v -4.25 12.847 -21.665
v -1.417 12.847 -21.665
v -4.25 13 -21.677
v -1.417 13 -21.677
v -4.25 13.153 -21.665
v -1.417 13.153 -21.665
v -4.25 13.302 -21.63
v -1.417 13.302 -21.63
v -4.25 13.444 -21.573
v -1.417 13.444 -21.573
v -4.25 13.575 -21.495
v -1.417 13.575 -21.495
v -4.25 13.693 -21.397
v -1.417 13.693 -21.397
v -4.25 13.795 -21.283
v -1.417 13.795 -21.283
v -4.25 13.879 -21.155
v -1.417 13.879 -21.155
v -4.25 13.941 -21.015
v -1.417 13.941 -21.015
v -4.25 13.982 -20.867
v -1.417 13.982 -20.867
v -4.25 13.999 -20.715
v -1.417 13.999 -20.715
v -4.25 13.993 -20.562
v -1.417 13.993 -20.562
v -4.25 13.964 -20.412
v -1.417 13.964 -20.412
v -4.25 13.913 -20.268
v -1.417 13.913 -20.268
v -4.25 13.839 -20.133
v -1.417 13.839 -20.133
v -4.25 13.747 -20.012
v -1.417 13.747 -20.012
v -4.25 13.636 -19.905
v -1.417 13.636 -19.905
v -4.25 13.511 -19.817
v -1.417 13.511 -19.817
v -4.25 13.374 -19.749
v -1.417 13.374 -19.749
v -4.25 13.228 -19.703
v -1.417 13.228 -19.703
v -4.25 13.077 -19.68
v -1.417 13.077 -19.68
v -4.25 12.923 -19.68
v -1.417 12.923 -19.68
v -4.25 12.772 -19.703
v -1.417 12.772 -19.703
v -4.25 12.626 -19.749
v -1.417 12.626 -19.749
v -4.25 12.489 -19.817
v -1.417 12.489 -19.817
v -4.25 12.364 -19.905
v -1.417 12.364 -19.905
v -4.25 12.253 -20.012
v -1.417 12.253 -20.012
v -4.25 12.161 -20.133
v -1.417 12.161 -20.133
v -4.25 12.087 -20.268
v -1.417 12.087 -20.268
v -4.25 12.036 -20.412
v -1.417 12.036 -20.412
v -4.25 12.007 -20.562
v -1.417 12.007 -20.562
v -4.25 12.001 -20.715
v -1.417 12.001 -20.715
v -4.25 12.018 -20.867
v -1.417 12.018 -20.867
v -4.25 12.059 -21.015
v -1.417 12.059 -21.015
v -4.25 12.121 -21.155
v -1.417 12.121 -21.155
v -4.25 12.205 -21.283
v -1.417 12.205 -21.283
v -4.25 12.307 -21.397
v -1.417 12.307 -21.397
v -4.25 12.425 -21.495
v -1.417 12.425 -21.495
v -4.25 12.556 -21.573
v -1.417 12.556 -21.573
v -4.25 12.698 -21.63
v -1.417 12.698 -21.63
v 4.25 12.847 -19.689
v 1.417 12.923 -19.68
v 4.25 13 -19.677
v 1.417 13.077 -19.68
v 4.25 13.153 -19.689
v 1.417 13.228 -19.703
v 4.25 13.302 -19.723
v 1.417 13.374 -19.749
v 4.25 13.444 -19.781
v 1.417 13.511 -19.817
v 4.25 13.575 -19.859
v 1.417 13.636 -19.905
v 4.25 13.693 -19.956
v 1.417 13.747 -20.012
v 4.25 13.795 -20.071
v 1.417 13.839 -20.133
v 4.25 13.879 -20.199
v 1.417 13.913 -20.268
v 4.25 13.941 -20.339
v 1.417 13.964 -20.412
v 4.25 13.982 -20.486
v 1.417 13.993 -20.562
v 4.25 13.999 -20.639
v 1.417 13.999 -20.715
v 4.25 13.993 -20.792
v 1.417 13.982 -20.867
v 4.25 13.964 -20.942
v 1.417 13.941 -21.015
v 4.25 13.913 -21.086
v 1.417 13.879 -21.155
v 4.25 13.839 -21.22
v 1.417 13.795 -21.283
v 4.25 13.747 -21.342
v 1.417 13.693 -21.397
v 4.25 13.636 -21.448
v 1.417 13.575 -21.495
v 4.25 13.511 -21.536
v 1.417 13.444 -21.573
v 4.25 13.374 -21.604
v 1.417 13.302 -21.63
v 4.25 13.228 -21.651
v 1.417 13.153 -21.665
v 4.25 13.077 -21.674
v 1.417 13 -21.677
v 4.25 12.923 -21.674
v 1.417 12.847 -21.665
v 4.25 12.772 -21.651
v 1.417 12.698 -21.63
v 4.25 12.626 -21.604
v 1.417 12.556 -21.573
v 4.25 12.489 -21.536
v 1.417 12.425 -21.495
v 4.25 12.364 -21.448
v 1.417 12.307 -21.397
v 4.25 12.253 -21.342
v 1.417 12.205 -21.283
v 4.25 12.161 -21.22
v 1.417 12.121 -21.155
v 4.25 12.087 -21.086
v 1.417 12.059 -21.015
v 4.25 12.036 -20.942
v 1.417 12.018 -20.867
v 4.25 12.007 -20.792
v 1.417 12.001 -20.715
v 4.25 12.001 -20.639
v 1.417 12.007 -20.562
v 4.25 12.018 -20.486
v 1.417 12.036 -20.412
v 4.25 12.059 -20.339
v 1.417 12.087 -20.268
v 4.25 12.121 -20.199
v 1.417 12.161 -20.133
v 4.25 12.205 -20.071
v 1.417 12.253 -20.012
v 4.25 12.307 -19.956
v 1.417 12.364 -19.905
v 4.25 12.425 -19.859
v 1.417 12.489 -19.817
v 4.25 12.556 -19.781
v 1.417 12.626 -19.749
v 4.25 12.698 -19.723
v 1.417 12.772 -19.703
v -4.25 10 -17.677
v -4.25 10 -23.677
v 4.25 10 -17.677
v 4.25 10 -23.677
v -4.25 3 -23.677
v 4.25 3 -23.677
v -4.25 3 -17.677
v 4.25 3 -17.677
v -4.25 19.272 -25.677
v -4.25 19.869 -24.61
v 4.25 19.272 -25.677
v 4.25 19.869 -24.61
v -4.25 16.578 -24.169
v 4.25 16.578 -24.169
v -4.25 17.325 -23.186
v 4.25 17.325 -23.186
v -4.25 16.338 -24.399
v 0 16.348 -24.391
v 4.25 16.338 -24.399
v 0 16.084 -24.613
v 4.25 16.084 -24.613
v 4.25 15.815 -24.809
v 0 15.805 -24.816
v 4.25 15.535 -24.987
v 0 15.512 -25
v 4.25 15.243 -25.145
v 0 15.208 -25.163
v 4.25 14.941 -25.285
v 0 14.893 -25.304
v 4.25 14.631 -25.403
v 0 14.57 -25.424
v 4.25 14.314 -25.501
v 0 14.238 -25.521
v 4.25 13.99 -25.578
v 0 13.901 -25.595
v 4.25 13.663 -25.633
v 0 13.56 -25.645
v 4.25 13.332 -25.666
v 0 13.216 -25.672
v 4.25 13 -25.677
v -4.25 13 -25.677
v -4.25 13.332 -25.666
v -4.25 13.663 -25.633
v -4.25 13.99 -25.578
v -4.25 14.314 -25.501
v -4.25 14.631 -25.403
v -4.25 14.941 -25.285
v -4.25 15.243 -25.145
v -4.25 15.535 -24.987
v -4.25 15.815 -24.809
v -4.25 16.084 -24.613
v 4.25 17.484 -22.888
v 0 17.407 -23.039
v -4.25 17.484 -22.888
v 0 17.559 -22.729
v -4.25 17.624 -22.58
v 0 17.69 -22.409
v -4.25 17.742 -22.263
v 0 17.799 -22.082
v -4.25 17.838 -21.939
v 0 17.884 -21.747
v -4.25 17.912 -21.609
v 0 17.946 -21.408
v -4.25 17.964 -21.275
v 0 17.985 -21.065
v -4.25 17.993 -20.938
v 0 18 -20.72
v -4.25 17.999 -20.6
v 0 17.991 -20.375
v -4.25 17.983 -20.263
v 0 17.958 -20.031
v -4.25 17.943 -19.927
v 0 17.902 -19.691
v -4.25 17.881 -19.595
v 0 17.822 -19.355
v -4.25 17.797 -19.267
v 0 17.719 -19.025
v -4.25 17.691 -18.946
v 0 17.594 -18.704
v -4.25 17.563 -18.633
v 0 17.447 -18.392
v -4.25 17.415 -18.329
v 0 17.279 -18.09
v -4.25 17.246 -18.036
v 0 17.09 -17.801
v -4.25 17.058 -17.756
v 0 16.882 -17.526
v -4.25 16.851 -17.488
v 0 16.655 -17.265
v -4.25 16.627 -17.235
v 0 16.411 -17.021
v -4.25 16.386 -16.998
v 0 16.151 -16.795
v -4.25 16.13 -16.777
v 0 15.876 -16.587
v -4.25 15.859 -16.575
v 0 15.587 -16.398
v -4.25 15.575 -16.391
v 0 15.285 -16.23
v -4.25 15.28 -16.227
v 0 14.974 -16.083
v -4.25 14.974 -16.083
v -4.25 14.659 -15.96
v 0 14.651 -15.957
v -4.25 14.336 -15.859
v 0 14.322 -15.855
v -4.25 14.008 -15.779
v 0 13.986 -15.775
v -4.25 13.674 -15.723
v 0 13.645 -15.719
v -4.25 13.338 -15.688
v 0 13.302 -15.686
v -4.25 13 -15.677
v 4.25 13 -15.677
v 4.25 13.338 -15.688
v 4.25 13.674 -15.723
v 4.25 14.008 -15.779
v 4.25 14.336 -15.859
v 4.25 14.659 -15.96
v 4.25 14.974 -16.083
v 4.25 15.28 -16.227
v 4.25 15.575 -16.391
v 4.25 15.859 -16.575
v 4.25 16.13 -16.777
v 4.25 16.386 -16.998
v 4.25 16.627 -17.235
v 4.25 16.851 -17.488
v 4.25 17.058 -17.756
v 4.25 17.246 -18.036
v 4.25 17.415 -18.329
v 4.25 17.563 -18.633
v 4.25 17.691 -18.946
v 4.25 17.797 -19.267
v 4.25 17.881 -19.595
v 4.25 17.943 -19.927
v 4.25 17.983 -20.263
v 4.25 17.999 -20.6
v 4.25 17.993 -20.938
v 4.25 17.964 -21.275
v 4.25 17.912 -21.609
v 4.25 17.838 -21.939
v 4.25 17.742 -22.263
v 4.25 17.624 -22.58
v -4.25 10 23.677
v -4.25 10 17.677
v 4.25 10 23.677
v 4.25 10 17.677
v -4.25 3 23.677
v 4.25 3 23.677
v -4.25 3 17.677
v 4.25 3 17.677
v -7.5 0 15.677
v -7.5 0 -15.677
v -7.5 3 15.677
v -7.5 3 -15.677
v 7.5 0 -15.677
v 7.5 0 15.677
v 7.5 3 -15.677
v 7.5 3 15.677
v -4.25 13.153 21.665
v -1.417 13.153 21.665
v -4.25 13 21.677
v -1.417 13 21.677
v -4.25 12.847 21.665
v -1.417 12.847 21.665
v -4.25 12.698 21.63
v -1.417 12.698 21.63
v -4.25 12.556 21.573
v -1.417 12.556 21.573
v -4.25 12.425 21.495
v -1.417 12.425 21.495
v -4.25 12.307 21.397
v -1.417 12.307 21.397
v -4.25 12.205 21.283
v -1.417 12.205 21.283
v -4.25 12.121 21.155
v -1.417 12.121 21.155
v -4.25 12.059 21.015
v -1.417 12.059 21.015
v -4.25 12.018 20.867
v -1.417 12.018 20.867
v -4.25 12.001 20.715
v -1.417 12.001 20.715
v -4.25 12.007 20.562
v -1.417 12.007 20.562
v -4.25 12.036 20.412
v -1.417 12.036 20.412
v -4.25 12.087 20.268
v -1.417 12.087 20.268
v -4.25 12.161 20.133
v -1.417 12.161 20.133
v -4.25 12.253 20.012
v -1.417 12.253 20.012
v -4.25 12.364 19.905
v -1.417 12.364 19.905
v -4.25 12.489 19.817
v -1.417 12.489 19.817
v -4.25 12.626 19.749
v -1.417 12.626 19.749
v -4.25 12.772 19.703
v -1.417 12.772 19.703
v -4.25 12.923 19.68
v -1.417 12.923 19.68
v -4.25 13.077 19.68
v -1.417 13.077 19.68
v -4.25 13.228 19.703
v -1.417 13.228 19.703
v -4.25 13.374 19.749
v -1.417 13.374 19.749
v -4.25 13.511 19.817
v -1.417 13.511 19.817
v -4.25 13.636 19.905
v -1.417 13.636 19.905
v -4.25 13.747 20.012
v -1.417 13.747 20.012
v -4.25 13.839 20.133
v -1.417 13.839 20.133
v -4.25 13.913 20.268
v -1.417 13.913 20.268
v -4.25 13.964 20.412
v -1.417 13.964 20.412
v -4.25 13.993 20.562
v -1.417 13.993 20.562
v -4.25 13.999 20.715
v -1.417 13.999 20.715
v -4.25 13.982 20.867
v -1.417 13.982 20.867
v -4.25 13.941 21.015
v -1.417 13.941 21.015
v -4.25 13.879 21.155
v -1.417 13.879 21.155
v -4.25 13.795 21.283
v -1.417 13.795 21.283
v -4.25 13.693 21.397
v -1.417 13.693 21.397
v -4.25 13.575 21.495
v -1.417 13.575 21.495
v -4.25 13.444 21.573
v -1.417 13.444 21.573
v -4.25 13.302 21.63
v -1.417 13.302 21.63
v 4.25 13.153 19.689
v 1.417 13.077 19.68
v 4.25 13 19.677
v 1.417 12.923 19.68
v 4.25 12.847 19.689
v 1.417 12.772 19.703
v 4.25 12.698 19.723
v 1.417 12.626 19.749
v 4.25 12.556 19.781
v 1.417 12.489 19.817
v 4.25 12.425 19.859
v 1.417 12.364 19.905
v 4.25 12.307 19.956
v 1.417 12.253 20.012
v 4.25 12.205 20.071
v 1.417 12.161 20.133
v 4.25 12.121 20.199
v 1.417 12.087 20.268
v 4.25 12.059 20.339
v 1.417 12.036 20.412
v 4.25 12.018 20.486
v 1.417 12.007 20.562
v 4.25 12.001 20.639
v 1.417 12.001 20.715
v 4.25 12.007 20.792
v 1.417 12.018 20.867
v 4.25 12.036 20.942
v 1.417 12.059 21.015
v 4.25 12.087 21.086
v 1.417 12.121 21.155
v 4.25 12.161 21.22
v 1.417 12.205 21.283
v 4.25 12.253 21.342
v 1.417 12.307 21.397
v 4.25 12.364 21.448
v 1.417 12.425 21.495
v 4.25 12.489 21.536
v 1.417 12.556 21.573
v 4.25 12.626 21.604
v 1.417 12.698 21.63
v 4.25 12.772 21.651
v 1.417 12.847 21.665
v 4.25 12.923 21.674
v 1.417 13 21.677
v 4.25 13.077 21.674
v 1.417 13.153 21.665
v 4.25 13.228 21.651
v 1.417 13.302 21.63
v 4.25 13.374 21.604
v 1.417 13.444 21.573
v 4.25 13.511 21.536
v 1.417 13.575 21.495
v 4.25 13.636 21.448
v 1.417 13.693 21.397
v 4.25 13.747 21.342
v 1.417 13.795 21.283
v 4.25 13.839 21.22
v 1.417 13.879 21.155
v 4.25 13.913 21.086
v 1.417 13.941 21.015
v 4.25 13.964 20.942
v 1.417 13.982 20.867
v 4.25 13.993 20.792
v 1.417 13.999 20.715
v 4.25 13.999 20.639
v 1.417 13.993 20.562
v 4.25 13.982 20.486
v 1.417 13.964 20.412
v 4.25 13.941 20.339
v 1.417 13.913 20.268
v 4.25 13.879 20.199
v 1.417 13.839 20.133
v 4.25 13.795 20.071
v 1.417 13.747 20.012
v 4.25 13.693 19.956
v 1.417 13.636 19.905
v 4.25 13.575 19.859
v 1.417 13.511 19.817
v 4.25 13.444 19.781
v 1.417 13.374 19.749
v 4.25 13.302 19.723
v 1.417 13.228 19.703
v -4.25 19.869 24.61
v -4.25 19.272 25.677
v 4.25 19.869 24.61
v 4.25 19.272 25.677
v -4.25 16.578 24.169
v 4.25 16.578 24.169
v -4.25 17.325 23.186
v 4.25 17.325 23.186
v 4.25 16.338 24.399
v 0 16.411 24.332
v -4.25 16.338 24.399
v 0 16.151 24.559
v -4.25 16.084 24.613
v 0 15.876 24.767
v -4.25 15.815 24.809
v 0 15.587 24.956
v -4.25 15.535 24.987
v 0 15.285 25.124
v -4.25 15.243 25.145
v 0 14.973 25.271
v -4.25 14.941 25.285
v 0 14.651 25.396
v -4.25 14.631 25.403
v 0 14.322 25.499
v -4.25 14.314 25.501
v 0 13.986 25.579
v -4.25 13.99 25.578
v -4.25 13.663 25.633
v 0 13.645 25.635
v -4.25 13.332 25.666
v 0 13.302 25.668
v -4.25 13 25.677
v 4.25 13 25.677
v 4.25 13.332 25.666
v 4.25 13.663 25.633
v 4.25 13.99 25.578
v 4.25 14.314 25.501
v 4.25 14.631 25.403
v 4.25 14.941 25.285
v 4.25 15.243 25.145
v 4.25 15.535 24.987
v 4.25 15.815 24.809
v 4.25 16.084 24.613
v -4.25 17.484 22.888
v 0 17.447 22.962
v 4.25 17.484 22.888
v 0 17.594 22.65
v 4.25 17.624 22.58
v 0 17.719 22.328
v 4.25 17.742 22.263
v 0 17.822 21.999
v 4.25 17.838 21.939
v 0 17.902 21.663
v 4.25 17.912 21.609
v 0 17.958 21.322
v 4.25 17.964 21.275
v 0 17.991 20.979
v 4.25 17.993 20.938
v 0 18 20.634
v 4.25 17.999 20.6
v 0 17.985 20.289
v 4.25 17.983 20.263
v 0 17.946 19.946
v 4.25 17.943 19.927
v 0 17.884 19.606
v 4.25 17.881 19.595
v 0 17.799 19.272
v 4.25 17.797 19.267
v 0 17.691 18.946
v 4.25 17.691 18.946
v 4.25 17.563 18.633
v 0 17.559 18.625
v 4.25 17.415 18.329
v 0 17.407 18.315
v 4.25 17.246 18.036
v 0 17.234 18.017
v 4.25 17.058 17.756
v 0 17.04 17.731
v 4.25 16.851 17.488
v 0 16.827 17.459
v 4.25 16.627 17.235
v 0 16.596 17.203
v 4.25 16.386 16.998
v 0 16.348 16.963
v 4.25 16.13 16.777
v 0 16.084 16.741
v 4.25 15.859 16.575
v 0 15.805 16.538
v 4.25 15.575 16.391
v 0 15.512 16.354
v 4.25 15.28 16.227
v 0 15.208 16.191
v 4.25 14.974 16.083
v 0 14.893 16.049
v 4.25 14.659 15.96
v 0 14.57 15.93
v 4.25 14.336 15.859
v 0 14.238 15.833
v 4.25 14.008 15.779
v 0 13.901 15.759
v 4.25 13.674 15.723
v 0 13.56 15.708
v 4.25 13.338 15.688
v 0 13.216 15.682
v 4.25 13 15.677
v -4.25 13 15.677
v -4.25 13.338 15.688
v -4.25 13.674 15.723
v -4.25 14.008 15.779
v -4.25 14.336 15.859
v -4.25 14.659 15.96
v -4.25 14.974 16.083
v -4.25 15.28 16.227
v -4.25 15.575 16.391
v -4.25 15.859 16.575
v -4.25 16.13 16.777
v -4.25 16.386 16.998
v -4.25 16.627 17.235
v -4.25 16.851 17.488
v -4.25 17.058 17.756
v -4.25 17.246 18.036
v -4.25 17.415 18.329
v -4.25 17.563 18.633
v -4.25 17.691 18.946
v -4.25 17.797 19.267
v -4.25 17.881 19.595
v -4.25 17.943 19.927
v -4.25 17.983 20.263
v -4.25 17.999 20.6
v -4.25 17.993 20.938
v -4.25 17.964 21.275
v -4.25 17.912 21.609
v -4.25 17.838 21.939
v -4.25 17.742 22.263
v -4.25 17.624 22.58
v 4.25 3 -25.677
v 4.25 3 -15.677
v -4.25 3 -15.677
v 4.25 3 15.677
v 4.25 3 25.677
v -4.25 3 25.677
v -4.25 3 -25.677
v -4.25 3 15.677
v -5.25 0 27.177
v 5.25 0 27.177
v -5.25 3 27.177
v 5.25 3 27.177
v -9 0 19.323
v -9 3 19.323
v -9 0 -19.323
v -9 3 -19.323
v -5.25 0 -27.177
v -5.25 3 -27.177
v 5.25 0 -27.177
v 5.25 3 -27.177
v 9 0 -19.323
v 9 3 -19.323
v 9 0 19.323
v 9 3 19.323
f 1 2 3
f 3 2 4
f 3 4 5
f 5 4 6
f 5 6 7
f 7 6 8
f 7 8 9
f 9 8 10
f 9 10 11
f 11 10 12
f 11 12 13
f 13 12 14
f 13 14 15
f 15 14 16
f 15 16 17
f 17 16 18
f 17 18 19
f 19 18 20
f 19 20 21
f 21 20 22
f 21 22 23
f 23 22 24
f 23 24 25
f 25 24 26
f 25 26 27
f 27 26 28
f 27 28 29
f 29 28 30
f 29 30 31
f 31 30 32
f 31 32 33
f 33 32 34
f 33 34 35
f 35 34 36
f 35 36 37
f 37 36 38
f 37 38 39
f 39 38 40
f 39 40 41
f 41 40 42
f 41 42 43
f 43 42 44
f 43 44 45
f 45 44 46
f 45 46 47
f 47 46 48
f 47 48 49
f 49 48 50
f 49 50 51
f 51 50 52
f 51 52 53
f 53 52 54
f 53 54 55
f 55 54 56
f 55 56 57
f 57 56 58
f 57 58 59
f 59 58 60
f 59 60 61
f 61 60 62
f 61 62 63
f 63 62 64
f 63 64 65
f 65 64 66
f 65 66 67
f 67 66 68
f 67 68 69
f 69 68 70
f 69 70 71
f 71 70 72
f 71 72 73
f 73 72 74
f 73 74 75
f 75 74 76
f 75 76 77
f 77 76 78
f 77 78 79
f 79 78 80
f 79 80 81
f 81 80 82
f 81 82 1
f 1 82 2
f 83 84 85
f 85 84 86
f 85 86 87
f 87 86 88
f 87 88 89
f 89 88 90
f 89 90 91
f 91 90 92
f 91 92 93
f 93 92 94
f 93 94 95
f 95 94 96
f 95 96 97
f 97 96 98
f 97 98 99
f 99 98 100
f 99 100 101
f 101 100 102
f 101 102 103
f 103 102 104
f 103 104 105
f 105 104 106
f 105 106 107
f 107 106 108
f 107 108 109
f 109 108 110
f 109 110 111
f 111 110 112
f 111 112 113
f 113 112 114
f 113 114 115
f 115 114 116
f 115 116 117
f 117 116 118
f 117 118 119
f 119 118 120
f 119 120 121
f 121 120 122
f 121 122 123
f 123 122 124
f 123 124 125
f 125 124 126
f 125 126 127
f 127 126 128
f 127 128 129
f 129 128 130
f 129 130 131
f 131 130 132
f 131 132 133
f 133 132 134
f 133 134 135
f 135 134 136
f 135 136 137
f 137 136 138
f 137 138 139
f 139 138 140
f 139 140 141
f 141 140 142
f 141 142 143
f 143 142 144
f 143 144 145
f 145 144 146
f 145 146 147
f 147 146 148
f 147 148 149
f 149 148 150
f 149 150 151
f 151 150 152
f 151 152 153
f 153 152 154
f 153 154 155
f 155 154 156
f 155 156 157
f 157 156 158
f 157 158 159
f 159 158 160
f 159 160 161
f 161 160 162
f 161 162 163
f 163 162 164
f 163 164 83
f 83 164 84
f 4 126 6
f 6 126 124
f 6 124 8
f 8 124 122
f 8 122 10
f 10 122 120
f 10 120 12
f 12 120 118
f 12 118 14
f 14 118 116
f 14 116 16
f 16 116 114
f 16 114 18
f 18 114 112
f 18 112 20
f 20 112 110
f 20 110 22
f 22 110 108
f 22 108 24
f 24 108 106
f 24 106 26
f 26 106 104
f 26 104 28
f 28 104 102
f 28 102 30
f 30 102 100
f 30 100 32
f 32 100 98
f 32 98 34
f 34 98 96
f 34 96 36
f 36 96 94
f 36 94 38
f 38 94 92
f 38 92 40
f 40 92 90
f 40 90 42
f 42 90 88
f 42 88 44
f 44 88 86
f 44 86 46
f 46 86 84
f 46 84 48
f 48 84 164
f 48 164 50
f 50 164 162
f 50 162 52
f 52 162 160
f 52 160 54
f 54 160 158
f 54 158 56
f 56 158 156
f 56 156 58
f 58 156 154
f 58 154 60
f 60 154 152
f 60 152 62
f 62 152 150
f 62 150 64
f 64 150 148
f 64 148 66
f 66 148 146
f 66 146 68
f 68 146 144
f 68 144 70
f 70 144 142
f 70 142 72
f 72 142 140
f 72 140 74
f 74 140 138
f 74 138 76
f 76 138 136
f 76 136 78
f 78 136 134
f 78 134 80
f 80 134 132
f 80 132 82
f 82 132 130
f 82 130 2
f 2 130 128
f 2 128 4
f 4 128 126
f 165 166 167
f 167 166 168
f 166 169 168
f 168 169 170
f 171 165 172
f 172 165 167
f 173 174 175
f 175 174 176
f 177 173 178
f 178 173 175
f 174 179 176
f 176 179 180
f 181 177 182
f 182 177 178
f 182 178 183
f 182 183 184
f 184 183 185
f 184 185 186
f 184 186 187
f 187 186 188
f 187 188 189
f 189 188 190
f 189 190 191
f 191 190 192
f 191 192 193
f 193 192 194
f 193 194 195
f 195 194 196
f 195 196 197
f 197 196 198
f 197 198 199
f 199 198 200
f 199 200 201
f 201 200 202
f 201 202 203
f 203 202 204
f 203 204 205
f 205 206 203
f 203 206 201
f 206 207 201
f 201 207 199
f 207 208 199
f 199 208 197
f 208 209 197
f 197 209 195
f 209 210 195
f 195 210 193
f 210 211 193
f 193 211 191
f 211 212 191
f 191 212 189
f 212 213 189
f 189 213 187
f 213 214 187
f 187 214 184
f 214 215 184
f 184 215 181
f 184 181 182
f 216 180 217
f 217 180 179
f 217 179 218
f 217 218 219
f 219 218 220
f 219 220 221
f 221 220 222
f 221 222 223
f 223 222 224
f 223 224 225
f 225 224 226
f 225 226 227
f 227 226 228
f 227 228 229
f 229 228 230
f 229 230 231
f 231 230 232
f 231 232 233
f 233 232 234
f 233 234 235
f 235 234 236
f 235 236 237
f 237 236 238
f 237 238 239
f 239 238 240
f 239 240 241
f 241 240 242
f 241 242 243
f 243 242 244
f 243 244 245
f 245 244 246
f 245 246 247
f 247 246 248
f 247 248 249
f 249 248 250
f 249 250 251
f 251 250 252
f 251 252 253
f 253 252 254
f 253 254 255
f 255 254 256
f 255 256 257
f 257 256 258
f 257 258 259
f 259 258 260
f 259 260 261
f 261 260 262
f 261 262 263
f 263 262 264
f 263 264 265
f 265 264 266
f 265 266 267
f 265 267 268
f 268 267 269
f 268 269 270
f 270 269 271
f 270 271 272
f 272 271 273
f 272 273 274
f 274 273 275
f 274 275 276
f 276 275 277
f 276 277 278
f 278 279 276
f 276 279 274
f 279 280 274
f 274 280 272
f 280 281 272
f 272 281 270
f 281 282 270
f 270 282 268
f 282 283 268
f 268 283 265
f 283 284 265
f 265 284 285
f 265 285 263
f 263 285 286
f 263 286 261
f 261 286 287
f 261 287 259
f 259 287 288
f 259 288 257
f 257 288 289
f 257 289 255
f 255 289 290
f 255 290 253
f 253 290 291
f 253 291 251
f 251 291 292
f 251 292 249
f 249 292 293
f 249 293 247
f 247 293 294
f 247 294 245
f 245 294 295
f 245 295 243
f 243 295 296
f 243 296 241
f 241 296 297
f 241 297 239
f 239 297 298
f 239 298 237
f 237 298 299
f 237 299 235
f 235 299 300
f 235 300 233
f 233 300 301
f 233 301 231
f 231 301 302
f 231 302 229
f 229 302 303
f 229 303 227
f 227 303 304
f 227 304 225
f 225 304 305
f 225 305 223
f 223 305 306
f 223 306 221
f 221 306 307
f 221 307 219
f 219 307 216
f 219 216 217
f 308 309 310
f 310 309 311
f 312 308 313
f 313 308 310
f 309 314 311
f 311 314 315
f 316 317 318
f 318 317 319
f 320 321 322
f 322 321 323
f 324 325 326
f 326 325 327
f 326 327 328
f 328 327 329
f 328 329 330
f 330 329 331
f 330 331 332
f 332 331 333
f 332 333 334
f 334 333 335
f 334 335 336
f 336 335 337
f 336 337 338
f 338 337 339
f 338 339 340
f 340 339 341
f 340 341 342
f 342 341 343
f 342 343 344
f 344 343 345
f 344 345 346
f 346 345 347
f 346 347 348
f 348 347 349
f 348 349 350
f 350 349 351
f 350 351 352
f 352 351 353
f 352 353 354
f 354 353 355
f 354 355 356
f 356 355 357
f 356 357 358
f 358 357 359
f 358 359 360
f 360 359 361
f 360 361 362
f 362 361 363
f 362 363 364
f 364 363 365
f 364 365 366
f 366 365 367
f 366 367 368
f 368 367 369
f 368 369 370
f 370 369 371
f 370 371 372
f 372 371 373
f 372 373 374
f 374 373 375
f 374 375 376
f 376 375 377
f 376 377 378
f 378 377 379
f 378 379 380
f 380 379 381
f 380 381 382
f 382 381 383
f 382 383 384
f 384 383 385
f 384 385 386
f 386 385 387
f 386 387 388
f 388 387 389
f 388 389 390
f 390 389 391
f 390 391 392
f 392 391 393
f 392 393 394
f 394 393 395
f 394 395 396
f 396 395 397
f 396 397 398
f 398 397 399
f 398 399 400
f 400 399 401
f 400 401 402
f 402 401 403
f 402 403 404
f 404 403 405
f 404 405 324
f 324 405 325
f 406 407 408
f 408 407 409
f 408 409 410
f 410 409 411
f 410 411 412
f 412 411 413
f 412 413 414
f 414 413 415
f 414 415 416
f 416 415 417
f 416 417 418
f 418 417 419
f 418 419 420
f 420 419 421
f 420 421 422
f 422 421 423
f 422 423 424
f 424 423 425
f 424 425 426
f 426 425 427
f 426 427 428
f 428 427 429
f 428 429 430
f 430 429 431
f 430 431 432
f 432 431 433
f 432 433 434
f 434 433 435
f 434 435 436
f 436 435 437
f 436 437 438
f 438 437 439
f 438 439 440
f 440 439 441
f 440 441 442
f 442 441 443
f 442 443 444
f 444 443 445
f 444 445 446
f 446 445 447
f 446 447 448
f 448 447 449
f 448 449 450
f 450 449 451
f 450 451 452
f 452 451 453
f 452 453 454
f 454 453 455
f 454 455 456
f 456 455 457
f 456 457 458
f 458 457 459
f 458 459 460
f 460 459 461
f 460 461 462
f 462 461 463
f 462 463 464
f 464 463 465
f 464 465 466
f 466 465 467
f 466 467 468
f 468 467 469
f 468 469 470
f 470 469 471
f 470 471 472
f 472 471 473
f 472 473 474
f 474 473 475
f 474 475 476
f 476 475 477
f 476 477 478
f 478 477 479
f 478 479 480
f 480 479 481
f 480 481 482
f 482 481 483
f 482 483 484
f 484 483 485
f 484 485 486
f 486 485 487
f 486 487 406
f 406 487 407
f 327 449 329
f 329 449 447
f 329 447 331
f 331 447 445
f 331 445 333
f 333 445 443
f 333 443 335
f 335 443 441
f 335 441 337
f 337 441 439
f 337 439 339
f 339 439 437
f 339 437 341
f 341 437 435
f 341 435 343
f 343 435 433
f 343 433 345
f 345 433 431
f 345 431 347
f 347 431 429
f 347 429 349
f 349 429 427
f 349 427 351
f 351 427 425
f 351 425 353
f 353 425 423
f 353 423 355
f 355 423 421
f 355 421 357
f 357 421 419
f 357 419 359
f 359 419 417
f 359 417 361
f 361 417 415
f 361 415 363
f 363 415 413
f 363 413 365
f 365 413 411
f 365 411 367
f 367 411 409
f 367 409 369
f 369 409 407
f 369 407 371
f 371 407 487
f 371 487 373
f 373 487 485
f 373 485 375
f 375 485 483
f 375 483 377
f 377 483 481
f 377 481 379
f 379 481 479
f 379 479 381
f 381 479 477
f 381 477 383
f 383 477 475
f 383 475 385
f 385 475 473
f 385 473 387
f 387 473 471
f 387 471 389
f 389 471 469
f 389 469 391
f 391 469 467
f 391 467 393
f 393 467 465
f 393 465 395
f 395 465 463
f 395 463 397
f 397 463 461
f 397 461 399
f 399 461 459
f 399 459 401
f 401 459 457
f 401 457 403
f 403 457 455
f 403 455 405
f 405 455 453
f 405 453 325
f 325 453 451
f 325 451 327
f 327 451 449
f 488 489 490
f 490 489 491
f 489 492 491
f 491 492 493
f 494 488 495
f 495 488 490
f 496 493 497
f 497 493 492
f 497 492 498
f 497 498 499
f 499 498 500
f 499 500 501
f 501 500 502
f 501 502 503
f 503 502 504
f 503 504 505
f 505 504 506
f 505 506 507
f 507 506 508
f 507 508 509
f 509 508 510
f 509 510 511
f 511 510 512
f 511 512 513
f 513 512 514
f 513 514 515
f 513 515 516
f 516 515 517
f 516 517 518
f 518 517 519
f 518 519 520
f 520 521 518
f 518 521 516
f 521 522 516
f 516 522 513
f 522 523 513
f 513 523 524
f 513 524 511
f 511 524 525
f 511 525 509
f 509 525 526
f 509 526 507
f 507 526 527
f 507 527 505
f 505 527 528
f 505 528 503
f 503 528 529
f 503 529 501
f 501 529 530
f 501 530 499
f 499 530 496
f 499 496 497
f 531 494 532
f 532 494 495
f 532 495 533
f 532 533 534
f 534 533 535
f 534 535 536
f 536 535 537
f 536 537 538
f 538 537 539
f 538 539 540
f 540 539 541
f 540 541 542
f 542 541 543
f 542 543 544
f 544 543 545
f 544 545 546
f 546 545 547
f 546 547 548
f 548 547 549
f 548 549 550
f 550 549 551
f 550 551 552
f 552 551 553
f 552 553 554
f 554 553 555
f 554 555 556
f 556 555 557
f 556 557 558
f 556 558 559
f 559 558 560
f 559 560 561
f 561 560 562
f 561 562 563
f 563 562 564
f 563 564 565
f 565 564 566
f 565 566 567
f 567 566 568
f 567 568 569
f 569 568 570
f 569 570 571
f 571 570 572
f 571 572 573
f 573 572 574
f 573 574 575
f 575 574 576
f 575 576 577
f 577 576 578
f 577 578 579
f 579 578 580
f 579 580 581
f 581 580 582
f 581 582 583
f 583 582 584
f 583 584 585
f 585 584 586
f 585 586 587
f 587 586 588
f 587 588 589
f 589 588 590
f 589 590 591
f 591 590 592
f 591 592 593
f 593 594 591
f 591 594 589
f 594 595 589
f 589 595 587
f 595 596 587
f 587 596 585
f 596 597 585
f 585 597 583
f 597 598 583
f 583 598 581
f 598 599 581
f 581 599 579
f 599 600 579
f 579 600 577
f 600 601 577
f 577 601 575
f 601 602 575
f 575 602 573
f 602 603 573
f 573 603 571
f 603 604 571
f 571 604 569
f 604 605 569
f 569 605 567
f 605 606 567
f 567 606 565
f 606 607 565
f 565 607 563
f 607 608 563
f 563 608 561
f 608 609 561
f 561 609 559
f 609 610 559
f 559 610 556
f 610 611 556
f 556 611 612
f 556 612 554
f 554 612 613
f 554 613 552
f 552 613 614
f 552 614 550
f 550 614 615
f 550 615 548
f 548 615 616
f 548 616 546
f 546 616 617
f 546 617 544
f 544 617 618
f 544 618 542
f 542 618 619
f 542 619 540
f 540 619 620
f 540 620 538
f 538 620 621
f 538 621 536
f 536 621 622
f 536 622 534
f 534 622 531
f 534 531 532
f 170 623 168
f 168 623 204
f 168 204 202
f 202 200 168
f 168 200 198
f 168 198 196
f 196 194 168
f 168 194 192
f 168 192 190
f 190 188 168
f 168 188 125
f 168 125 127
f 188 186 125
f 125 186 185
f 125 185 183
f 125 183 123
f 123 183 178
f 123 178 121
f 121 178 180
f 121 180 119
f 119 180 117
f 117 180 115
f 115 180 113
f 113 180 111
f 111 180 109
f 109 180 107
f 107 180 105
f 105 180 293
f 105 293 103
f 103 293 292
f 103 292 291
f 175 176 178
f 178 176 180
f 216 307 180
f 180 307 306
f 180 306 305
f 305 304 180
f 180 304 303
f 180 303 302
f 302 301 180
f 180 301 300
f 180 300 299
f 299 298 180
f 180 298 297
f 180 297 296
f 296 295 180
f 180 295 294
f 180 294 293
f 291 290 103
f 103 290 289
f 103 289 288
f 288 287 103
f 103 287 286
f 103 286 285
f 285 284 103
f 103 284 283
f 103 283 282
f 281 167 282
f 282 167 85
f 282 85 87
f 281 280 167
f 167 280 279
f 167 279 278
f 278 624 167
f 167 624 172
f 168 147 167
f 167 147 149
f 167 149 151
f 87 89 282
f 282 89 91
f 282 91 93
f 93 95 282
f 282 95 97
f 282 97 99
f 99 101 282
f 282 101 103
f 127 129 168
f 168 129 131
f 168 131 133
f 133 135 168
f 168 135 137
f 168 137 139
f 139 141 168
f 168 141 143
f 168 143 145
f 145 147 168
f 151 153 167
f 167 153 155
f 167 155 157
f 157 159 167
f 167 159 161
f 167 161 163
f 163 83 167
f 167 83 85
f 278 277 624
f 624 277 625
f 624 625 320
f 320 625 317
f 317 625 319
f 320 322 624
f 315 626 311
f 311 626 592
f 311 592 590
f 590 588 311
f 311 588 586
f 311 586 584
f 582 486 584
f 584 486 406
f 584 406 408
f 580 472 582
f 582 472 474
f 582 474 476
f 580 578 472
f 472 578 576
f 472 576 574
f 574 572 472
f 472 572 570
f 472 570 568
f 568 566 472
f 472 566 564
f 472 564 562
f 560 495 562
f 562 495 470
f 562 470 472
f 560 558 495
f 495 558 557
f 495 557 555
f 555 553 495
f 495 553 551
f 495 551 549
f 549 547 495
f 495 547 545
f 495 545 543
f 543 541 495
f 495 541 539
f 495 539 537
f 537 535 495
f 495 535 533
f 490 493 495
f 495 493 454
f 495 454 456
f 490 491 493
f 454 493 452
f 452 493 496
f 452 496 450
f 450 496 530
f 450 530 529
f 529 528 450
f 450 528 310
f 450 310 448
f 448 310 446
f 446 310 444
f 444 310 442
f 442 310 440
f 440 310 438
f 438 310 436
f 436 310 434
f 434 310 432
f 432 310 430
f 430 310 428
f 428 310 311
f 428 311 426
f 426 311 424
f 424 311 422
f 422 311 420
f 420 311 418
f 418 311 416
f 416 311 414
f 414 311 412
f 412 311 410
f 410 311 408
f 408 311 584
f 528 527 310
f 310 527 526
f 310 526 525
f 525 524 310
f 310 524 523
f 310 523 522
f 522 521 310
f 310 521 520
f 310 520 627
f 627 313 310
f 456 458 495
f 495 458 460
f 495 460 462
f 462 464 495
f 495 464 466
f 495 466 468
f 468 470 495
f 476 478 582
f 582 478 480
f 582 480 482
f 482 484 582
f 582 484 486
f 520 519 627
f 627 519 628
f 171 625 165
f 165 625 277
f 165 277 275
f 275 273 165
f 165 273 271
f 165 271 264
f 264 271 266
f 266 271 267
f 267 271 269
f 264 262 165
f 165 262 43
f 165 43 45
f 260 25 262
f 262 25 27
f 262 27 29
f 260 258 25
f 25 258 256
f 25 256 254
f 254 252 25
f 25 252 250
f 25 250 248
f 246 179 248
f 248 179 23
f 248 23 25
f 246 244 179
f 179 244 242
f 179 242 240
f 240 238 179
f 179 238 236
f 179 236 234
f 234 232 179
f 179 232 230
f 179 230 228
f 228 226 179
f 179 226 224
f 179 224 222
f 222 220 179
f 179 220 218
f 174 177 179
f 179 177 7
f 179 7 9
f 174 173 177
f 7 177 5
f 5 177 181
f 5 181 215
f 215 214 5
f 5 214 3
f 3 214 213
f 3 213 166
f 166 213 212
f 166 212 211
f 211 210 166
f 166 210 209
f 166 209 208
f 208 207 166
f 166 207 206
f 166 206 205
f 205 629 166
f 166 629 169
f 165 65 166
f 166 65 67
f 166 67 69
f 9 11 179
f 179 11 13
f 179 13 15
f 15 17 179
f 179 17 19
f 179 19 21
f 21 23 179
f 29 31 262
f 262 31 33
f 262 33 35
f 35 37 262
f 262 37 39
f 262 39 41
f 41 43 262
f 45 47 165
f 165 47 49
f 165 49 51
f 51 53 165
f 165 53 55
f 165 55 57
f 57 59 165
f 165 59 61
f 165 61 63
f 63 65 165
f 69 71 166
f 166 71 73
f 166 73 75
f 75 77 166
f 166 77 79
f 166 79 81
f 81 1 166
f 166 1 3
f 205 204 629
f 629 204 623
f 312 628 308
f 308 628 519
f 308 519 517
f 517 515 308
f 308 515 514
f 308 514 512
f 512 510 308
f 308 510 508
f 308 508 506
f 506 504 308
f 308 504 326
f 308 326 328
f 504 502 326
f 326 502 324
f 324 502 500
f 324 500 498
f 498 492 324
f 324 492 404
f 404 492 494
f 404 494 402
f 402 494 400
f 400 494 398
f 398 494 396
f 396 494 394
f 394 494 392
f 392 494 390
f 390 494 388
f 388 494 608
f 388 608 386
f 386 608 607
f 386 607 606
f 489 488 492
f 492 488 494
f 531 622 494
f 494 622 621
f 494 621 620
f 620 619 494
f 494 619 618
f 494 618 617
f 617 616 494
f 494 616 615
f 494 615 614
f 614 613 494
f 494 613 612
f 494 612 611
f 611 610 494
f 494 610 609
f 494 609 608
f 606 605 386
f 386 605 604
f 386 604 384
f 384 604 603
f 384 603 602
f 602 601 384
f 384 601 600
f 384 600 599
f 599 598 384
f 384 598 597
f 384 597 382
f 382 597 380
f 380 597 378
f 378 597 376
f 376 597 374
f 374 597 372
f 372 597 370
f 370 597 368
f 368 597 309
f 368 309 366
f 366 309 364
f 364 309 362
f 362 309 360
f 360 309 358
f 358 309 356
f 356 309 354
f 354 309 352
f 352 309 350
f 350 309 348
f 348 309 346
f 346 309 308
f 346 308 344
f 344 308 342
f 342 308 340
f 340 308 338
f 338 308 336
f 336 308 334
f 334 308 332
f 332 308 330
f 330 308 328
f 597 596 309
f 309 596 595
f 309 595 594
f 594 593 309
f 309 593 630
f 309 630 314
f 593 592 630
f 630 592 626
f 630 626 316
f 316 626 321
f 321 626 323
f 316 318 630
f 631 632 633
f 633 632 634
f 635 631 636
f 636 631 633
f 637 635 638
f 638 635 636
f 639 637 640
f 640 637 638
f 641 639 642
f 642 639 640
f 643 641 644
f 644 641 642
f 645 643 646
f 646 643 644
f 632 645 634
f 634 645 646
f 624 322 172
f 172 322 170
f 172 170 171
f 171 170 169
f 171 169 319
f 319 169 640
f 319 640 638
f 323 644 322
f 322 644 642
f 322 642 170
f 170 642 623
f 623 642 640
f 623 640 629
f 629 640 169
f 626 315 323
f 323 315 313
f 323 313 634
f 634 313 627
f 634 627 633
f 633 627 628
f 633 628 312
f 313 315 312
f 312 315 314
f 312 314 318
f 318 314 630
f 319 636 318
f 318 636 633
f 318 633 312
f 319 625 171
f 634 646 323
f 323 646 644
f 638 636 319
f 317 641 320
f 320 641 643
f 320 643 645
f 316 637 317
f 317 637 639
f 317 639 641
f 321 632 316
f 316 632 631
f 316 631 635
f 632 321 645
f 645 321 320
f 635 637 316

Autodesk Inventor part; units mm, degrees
ref_plane "YZ Plane" through (0, 0, 0) normal (1, 0, 0) x (0, 1, 0)
ref_plane "XZ Plane" through (0, 0, 0) normal (0, 1, 0) x (-1, 0, 0)
ref_plane "XY Plane" through (0, 0, 0) normal (0, 0, 1) x (1, 0, 0)
sketch "Sketch1" plane through (0, 0, 0) normal (0, 1, 0) x (-1, 0, 0)
  line L0 (5.25, 27.1768) -> (-5.25, 27.1768)
  line L1 (-5.25, 27.1768) -> (-9, 19.3232)
  line L2 (-9, 19.3232) -> (-9, -19.3232)
  line L3 (-9, -19.3232) -> (-5.25, -27.1768)
  line L4 (-5.25, -27.1768) -> (5.25, -27.1768)
  line L5 (5.25, -27.1768) -> (9, -19.3232)
  line L6 (9, -19.3232) -> (9, 19.3232)
  line L7 (9, 19.3232) -> (5.25, 27.1768)
  line L8 (4.25, 25.6768) -> (-4.25, 25.6768)
  line L9 (-4.25, 25.6768) -> (-4.25, 19.3232)
  line L10 (-4.25, 19.3232) -> (4.25, 19.3232)
  line L11 (4.25, 19.3232) -> (4.25, 25.6768)
  line L12 (4.25, -19.3232) -> (-4.25, -19.3232)
  line L13 (-4.25, -19.3232) -> (-4.25, -25.6768)
  line L14 (-4.25, -25.6768) -> (4.25, -25.6768)
  line L15 (4.25, -25.6768) -> (4.25, -19.3232)
  point P0 (0, 0)
  point P1 (0, 22.5)
  point P2 (0, -22.5)
  point P3 (0, 25.6768)
  point P4 (0, 27.1768)
  point P5 (0, -25.6768)
  point P6 (0, -27.1768)
  point P7 (4.25, 22.5)
  point P8 (0, 19.3232)
  point P9 (0, -19.3232)
  point P10 (4.25, -22.5)
  point P11 (9, 0)
  dimension "d0" = 18
  dimension "d1" = 1.5
  dimension "d2" = 1.5
  dimension "d3" = 8.5
  dimension "d4" = 8.5
  dimension "d6" = 10.5
  dimension "d7" = 10.5
  dimension "d8" = 9
  dimension "d12" = 115.524
  dimension "d13" = 115.524
  dimension "d14" = 115.524
  dimension "d15" = 115.524
  dimension "d16" = 45
extrude "Extrusion1" add sketch "Sketch1" along normal blind 3 contours L7 L6 L5 L4 L3 L2 L1 L0 | L11 L10 L9 L8 | L15 L14 L13 L12
sketch "Sketch2" plane through (0, 3, 0) normal (0, 1, 0) x (1, 0, 0)
  line L0 (5.25, -27.1768) -> (9, -19.3232) projected
  line L1 (9, -19.3232) -> (9, 19.3232) projected
  line L2 (9, 19.3232) -> (5.25, 27.1768) projected
  line L3 (5.25, 27.1768) -> (-5.25, 27.1768) projected
  line L4 (-5.25, 27.1768) -> (-9, 19.3232) projected
  line L5 (-9, 19.3232) -> (-9, -19.3232) projected
  line L6 (-9, -19.3232) -> (-5.25, -27.1768) projected
  line L7 (-5.25, -27.1768) -> (5.25, -27.1768) projected
  line L8 (-4.25, -25.6768) -> (4.25, -25.6768)
  line L9 (4.25, -25.6768) -> (4.25, -15.6768)
  line L10 (4.25, -15.6768) -> (-4.25, -15.6768)
  line L11 (-4.25, -15.6768) -> (-4.25, -25.6768)
  line L12 (-4.25, 15.6768) -> (4.25, 15.6768)
  line L13 (4.25, 15.6768) -> (4.25, 25.6768)
  line L14 (4.25, 25.6768) -> (-4.25, 25.6768)
  line L15 (-4.25, 25.6768) -> (-4.25, 15.6768)
  point P0 (0, 0)
  point P1 (0, -25.6768)
  point P2 (0, -27.1768)
  dimension "d19" = 1.5
  dimension "d20" = 1.5
  dimension "d21" = 8.5
  dimension "d22" = 8.5
  dimension "d23" = 10
  dimension "d24" = 10
extrude "Extrusion2" add sketch "Sketch2" along normal blind 15 contours L11 L10 L9 L8 | L15 L14 L13 L12
fillet "Fillet1" radius 5 4 edges at (0, 18, 25.6768) (0, 18, 15.6768) (0, 18, -15.6768) (0, 18, -25.6768)
sketch "Sketch3" plane through (4.25, 3, 25.6768) normal (1, 0, 0) x (0, 0, -1)
  arc A0 (10, 10) -> (0, 10) centre (5, 10) ccw projected
  line L0 (0, 0) -> (0, 10) projected
  line L1 (10, 0) -> (0, 0) projected
  line L2 (10, 0) -> (10, 10) projected
  circle A1 centre (5, 10) radius 1
  arc A2 (10, 10) -> (0, 10) centre (5, 10) ccw projected
  line L3 (2.4906, 14.3247) -> (1.0669, 16.8692)
  line L4 (1.0669, 16.8692) -> (0, 16.2723)
  line L5 (0, 16.2723) -> (1.5075, 13.5781)
  arc A3 (2.4906, 14.3247) -> (1.5075, 13.5781) centre (5, 10) ccw
  point P0 (25.6768, -3)
  point P1 (1.5075, 13.5781)
  point P2 (2.4906, 14.3247)
  dimension "d28" = 2
extrude "Extrusion3" add sketch "Sketch3" against normal up to surface (8.5 mm away) contours A0 L5 L4 L3
extrude "Extrusion4" cut sketch "Sketch3" against normal up to surface (8.5 mm away) contours A1
sketch "Sketch4" plane through (0, 3, 0) normal (0, 1, 0) x (1, 0, 0)
  line L0 (4.25, 15.6768) -> (-4.25, 15.6768) projected
  line L1 (-4.25, 15.6768) -> (-4.25, 25.6768) projected
  line L2 (-4.25, 25.6768) -> (4.25, 25.6768) projected
  line L3 (4.25, 25.6768) -> (4.25, 15.6768) projected
  line L4 (4.25, -25.6768) -> (-4.25, -25.6768) projected
  line L5 (-4.25, -25.6768) -> (-4.25, -15.6768) projected
  line L6 (-4.25, -15.6768) -> (4.25, -15.6768) projected
  line L7 (4.25, -15.6768) -> (4.25, -25.6768) projected
  line L8 (5.25, -27.1768) -> (9, -19.3232) projected
  line L9 (9, -19.3232) -> (9, 19.3232) projected
  line L10 (9, 19.3232) -> (5.25, 27.1768) projected
  line L11 (5.25, 27.1768) -> (-5.25, 27.1768) projected
  line L12 (-5.25, 27.1768) -> (-9, 19.3232) projected
  line L13 (-9, 19.3232) -> (-9, -19.3232) projected
  line L14 (-9, -19.3232) -> (-5.25, -27.1768) projected
  line L15 (-5.25, -27.1768) -> (5.25, -27.1768) projected
  line L16 (-7.5, 15.6768) -> (7.5, 15.6768)
  line L17 (7.5, 15.6768) -> (7.5, -15.6768)
  line L18 (7.5, -15.6768) -> (-7.5, -15.6768)
  line L19 (-7.5, -15.6768) -> (-7.5, 15.6768)
  point P0 (0, 0)
  dimension "d33" = 1.5
  dimension "d34" = 1.5
extrude "Extrusion5" cut sketch "Sketch4" against normal up to surface (3 mm away) contours L16 L17 L18 L6 L19 L0
sketch "Sketch5" plane through (4.25, 3, 25.6768) normal (1, 0, 0) x (0, 0, -1)
  line L0 (6.3537, 0) -> (45, 0) projected
  line L1 (2, 7) -> (8, 7)
  line L2 (8, 7) -> (8, 0)
  line L3 (8, 0) -> (2, 0)
  line L4 (2, 0) -> (2, 7)
  line L5 (0, 0) -> (0, 10) projected
  line L6 (10, 0) -> (10, 10) projected
  circle A0 centre (5, 10) radius 1 projected
  point P0 (25.6768, -3)
  point P1 (6.3537, 0)
  dimension "d37" = 2
  dimension "d38" = 2
  dimension "d39" = 2
extrude "Extrusion6" cut sketch "Sketch5" against normal up to surface (8.5 mm away) contours L3 L4 L1 L2 L0
mirror "Mirror1" about plane through (0, 0, 0) normal (0, 0, 1) of "Extrusion3", "Extrusion6", "Extrusion4"
equation "\"d7\" = d6"
equation "\"d13\" = d12"
equation "\"d14\" = d12"
equation "\"d15\" = d12"
equation "\"d20\" = d19"
equation "\"d24\" = d23"
properties part number "PalmWithBackstop"
